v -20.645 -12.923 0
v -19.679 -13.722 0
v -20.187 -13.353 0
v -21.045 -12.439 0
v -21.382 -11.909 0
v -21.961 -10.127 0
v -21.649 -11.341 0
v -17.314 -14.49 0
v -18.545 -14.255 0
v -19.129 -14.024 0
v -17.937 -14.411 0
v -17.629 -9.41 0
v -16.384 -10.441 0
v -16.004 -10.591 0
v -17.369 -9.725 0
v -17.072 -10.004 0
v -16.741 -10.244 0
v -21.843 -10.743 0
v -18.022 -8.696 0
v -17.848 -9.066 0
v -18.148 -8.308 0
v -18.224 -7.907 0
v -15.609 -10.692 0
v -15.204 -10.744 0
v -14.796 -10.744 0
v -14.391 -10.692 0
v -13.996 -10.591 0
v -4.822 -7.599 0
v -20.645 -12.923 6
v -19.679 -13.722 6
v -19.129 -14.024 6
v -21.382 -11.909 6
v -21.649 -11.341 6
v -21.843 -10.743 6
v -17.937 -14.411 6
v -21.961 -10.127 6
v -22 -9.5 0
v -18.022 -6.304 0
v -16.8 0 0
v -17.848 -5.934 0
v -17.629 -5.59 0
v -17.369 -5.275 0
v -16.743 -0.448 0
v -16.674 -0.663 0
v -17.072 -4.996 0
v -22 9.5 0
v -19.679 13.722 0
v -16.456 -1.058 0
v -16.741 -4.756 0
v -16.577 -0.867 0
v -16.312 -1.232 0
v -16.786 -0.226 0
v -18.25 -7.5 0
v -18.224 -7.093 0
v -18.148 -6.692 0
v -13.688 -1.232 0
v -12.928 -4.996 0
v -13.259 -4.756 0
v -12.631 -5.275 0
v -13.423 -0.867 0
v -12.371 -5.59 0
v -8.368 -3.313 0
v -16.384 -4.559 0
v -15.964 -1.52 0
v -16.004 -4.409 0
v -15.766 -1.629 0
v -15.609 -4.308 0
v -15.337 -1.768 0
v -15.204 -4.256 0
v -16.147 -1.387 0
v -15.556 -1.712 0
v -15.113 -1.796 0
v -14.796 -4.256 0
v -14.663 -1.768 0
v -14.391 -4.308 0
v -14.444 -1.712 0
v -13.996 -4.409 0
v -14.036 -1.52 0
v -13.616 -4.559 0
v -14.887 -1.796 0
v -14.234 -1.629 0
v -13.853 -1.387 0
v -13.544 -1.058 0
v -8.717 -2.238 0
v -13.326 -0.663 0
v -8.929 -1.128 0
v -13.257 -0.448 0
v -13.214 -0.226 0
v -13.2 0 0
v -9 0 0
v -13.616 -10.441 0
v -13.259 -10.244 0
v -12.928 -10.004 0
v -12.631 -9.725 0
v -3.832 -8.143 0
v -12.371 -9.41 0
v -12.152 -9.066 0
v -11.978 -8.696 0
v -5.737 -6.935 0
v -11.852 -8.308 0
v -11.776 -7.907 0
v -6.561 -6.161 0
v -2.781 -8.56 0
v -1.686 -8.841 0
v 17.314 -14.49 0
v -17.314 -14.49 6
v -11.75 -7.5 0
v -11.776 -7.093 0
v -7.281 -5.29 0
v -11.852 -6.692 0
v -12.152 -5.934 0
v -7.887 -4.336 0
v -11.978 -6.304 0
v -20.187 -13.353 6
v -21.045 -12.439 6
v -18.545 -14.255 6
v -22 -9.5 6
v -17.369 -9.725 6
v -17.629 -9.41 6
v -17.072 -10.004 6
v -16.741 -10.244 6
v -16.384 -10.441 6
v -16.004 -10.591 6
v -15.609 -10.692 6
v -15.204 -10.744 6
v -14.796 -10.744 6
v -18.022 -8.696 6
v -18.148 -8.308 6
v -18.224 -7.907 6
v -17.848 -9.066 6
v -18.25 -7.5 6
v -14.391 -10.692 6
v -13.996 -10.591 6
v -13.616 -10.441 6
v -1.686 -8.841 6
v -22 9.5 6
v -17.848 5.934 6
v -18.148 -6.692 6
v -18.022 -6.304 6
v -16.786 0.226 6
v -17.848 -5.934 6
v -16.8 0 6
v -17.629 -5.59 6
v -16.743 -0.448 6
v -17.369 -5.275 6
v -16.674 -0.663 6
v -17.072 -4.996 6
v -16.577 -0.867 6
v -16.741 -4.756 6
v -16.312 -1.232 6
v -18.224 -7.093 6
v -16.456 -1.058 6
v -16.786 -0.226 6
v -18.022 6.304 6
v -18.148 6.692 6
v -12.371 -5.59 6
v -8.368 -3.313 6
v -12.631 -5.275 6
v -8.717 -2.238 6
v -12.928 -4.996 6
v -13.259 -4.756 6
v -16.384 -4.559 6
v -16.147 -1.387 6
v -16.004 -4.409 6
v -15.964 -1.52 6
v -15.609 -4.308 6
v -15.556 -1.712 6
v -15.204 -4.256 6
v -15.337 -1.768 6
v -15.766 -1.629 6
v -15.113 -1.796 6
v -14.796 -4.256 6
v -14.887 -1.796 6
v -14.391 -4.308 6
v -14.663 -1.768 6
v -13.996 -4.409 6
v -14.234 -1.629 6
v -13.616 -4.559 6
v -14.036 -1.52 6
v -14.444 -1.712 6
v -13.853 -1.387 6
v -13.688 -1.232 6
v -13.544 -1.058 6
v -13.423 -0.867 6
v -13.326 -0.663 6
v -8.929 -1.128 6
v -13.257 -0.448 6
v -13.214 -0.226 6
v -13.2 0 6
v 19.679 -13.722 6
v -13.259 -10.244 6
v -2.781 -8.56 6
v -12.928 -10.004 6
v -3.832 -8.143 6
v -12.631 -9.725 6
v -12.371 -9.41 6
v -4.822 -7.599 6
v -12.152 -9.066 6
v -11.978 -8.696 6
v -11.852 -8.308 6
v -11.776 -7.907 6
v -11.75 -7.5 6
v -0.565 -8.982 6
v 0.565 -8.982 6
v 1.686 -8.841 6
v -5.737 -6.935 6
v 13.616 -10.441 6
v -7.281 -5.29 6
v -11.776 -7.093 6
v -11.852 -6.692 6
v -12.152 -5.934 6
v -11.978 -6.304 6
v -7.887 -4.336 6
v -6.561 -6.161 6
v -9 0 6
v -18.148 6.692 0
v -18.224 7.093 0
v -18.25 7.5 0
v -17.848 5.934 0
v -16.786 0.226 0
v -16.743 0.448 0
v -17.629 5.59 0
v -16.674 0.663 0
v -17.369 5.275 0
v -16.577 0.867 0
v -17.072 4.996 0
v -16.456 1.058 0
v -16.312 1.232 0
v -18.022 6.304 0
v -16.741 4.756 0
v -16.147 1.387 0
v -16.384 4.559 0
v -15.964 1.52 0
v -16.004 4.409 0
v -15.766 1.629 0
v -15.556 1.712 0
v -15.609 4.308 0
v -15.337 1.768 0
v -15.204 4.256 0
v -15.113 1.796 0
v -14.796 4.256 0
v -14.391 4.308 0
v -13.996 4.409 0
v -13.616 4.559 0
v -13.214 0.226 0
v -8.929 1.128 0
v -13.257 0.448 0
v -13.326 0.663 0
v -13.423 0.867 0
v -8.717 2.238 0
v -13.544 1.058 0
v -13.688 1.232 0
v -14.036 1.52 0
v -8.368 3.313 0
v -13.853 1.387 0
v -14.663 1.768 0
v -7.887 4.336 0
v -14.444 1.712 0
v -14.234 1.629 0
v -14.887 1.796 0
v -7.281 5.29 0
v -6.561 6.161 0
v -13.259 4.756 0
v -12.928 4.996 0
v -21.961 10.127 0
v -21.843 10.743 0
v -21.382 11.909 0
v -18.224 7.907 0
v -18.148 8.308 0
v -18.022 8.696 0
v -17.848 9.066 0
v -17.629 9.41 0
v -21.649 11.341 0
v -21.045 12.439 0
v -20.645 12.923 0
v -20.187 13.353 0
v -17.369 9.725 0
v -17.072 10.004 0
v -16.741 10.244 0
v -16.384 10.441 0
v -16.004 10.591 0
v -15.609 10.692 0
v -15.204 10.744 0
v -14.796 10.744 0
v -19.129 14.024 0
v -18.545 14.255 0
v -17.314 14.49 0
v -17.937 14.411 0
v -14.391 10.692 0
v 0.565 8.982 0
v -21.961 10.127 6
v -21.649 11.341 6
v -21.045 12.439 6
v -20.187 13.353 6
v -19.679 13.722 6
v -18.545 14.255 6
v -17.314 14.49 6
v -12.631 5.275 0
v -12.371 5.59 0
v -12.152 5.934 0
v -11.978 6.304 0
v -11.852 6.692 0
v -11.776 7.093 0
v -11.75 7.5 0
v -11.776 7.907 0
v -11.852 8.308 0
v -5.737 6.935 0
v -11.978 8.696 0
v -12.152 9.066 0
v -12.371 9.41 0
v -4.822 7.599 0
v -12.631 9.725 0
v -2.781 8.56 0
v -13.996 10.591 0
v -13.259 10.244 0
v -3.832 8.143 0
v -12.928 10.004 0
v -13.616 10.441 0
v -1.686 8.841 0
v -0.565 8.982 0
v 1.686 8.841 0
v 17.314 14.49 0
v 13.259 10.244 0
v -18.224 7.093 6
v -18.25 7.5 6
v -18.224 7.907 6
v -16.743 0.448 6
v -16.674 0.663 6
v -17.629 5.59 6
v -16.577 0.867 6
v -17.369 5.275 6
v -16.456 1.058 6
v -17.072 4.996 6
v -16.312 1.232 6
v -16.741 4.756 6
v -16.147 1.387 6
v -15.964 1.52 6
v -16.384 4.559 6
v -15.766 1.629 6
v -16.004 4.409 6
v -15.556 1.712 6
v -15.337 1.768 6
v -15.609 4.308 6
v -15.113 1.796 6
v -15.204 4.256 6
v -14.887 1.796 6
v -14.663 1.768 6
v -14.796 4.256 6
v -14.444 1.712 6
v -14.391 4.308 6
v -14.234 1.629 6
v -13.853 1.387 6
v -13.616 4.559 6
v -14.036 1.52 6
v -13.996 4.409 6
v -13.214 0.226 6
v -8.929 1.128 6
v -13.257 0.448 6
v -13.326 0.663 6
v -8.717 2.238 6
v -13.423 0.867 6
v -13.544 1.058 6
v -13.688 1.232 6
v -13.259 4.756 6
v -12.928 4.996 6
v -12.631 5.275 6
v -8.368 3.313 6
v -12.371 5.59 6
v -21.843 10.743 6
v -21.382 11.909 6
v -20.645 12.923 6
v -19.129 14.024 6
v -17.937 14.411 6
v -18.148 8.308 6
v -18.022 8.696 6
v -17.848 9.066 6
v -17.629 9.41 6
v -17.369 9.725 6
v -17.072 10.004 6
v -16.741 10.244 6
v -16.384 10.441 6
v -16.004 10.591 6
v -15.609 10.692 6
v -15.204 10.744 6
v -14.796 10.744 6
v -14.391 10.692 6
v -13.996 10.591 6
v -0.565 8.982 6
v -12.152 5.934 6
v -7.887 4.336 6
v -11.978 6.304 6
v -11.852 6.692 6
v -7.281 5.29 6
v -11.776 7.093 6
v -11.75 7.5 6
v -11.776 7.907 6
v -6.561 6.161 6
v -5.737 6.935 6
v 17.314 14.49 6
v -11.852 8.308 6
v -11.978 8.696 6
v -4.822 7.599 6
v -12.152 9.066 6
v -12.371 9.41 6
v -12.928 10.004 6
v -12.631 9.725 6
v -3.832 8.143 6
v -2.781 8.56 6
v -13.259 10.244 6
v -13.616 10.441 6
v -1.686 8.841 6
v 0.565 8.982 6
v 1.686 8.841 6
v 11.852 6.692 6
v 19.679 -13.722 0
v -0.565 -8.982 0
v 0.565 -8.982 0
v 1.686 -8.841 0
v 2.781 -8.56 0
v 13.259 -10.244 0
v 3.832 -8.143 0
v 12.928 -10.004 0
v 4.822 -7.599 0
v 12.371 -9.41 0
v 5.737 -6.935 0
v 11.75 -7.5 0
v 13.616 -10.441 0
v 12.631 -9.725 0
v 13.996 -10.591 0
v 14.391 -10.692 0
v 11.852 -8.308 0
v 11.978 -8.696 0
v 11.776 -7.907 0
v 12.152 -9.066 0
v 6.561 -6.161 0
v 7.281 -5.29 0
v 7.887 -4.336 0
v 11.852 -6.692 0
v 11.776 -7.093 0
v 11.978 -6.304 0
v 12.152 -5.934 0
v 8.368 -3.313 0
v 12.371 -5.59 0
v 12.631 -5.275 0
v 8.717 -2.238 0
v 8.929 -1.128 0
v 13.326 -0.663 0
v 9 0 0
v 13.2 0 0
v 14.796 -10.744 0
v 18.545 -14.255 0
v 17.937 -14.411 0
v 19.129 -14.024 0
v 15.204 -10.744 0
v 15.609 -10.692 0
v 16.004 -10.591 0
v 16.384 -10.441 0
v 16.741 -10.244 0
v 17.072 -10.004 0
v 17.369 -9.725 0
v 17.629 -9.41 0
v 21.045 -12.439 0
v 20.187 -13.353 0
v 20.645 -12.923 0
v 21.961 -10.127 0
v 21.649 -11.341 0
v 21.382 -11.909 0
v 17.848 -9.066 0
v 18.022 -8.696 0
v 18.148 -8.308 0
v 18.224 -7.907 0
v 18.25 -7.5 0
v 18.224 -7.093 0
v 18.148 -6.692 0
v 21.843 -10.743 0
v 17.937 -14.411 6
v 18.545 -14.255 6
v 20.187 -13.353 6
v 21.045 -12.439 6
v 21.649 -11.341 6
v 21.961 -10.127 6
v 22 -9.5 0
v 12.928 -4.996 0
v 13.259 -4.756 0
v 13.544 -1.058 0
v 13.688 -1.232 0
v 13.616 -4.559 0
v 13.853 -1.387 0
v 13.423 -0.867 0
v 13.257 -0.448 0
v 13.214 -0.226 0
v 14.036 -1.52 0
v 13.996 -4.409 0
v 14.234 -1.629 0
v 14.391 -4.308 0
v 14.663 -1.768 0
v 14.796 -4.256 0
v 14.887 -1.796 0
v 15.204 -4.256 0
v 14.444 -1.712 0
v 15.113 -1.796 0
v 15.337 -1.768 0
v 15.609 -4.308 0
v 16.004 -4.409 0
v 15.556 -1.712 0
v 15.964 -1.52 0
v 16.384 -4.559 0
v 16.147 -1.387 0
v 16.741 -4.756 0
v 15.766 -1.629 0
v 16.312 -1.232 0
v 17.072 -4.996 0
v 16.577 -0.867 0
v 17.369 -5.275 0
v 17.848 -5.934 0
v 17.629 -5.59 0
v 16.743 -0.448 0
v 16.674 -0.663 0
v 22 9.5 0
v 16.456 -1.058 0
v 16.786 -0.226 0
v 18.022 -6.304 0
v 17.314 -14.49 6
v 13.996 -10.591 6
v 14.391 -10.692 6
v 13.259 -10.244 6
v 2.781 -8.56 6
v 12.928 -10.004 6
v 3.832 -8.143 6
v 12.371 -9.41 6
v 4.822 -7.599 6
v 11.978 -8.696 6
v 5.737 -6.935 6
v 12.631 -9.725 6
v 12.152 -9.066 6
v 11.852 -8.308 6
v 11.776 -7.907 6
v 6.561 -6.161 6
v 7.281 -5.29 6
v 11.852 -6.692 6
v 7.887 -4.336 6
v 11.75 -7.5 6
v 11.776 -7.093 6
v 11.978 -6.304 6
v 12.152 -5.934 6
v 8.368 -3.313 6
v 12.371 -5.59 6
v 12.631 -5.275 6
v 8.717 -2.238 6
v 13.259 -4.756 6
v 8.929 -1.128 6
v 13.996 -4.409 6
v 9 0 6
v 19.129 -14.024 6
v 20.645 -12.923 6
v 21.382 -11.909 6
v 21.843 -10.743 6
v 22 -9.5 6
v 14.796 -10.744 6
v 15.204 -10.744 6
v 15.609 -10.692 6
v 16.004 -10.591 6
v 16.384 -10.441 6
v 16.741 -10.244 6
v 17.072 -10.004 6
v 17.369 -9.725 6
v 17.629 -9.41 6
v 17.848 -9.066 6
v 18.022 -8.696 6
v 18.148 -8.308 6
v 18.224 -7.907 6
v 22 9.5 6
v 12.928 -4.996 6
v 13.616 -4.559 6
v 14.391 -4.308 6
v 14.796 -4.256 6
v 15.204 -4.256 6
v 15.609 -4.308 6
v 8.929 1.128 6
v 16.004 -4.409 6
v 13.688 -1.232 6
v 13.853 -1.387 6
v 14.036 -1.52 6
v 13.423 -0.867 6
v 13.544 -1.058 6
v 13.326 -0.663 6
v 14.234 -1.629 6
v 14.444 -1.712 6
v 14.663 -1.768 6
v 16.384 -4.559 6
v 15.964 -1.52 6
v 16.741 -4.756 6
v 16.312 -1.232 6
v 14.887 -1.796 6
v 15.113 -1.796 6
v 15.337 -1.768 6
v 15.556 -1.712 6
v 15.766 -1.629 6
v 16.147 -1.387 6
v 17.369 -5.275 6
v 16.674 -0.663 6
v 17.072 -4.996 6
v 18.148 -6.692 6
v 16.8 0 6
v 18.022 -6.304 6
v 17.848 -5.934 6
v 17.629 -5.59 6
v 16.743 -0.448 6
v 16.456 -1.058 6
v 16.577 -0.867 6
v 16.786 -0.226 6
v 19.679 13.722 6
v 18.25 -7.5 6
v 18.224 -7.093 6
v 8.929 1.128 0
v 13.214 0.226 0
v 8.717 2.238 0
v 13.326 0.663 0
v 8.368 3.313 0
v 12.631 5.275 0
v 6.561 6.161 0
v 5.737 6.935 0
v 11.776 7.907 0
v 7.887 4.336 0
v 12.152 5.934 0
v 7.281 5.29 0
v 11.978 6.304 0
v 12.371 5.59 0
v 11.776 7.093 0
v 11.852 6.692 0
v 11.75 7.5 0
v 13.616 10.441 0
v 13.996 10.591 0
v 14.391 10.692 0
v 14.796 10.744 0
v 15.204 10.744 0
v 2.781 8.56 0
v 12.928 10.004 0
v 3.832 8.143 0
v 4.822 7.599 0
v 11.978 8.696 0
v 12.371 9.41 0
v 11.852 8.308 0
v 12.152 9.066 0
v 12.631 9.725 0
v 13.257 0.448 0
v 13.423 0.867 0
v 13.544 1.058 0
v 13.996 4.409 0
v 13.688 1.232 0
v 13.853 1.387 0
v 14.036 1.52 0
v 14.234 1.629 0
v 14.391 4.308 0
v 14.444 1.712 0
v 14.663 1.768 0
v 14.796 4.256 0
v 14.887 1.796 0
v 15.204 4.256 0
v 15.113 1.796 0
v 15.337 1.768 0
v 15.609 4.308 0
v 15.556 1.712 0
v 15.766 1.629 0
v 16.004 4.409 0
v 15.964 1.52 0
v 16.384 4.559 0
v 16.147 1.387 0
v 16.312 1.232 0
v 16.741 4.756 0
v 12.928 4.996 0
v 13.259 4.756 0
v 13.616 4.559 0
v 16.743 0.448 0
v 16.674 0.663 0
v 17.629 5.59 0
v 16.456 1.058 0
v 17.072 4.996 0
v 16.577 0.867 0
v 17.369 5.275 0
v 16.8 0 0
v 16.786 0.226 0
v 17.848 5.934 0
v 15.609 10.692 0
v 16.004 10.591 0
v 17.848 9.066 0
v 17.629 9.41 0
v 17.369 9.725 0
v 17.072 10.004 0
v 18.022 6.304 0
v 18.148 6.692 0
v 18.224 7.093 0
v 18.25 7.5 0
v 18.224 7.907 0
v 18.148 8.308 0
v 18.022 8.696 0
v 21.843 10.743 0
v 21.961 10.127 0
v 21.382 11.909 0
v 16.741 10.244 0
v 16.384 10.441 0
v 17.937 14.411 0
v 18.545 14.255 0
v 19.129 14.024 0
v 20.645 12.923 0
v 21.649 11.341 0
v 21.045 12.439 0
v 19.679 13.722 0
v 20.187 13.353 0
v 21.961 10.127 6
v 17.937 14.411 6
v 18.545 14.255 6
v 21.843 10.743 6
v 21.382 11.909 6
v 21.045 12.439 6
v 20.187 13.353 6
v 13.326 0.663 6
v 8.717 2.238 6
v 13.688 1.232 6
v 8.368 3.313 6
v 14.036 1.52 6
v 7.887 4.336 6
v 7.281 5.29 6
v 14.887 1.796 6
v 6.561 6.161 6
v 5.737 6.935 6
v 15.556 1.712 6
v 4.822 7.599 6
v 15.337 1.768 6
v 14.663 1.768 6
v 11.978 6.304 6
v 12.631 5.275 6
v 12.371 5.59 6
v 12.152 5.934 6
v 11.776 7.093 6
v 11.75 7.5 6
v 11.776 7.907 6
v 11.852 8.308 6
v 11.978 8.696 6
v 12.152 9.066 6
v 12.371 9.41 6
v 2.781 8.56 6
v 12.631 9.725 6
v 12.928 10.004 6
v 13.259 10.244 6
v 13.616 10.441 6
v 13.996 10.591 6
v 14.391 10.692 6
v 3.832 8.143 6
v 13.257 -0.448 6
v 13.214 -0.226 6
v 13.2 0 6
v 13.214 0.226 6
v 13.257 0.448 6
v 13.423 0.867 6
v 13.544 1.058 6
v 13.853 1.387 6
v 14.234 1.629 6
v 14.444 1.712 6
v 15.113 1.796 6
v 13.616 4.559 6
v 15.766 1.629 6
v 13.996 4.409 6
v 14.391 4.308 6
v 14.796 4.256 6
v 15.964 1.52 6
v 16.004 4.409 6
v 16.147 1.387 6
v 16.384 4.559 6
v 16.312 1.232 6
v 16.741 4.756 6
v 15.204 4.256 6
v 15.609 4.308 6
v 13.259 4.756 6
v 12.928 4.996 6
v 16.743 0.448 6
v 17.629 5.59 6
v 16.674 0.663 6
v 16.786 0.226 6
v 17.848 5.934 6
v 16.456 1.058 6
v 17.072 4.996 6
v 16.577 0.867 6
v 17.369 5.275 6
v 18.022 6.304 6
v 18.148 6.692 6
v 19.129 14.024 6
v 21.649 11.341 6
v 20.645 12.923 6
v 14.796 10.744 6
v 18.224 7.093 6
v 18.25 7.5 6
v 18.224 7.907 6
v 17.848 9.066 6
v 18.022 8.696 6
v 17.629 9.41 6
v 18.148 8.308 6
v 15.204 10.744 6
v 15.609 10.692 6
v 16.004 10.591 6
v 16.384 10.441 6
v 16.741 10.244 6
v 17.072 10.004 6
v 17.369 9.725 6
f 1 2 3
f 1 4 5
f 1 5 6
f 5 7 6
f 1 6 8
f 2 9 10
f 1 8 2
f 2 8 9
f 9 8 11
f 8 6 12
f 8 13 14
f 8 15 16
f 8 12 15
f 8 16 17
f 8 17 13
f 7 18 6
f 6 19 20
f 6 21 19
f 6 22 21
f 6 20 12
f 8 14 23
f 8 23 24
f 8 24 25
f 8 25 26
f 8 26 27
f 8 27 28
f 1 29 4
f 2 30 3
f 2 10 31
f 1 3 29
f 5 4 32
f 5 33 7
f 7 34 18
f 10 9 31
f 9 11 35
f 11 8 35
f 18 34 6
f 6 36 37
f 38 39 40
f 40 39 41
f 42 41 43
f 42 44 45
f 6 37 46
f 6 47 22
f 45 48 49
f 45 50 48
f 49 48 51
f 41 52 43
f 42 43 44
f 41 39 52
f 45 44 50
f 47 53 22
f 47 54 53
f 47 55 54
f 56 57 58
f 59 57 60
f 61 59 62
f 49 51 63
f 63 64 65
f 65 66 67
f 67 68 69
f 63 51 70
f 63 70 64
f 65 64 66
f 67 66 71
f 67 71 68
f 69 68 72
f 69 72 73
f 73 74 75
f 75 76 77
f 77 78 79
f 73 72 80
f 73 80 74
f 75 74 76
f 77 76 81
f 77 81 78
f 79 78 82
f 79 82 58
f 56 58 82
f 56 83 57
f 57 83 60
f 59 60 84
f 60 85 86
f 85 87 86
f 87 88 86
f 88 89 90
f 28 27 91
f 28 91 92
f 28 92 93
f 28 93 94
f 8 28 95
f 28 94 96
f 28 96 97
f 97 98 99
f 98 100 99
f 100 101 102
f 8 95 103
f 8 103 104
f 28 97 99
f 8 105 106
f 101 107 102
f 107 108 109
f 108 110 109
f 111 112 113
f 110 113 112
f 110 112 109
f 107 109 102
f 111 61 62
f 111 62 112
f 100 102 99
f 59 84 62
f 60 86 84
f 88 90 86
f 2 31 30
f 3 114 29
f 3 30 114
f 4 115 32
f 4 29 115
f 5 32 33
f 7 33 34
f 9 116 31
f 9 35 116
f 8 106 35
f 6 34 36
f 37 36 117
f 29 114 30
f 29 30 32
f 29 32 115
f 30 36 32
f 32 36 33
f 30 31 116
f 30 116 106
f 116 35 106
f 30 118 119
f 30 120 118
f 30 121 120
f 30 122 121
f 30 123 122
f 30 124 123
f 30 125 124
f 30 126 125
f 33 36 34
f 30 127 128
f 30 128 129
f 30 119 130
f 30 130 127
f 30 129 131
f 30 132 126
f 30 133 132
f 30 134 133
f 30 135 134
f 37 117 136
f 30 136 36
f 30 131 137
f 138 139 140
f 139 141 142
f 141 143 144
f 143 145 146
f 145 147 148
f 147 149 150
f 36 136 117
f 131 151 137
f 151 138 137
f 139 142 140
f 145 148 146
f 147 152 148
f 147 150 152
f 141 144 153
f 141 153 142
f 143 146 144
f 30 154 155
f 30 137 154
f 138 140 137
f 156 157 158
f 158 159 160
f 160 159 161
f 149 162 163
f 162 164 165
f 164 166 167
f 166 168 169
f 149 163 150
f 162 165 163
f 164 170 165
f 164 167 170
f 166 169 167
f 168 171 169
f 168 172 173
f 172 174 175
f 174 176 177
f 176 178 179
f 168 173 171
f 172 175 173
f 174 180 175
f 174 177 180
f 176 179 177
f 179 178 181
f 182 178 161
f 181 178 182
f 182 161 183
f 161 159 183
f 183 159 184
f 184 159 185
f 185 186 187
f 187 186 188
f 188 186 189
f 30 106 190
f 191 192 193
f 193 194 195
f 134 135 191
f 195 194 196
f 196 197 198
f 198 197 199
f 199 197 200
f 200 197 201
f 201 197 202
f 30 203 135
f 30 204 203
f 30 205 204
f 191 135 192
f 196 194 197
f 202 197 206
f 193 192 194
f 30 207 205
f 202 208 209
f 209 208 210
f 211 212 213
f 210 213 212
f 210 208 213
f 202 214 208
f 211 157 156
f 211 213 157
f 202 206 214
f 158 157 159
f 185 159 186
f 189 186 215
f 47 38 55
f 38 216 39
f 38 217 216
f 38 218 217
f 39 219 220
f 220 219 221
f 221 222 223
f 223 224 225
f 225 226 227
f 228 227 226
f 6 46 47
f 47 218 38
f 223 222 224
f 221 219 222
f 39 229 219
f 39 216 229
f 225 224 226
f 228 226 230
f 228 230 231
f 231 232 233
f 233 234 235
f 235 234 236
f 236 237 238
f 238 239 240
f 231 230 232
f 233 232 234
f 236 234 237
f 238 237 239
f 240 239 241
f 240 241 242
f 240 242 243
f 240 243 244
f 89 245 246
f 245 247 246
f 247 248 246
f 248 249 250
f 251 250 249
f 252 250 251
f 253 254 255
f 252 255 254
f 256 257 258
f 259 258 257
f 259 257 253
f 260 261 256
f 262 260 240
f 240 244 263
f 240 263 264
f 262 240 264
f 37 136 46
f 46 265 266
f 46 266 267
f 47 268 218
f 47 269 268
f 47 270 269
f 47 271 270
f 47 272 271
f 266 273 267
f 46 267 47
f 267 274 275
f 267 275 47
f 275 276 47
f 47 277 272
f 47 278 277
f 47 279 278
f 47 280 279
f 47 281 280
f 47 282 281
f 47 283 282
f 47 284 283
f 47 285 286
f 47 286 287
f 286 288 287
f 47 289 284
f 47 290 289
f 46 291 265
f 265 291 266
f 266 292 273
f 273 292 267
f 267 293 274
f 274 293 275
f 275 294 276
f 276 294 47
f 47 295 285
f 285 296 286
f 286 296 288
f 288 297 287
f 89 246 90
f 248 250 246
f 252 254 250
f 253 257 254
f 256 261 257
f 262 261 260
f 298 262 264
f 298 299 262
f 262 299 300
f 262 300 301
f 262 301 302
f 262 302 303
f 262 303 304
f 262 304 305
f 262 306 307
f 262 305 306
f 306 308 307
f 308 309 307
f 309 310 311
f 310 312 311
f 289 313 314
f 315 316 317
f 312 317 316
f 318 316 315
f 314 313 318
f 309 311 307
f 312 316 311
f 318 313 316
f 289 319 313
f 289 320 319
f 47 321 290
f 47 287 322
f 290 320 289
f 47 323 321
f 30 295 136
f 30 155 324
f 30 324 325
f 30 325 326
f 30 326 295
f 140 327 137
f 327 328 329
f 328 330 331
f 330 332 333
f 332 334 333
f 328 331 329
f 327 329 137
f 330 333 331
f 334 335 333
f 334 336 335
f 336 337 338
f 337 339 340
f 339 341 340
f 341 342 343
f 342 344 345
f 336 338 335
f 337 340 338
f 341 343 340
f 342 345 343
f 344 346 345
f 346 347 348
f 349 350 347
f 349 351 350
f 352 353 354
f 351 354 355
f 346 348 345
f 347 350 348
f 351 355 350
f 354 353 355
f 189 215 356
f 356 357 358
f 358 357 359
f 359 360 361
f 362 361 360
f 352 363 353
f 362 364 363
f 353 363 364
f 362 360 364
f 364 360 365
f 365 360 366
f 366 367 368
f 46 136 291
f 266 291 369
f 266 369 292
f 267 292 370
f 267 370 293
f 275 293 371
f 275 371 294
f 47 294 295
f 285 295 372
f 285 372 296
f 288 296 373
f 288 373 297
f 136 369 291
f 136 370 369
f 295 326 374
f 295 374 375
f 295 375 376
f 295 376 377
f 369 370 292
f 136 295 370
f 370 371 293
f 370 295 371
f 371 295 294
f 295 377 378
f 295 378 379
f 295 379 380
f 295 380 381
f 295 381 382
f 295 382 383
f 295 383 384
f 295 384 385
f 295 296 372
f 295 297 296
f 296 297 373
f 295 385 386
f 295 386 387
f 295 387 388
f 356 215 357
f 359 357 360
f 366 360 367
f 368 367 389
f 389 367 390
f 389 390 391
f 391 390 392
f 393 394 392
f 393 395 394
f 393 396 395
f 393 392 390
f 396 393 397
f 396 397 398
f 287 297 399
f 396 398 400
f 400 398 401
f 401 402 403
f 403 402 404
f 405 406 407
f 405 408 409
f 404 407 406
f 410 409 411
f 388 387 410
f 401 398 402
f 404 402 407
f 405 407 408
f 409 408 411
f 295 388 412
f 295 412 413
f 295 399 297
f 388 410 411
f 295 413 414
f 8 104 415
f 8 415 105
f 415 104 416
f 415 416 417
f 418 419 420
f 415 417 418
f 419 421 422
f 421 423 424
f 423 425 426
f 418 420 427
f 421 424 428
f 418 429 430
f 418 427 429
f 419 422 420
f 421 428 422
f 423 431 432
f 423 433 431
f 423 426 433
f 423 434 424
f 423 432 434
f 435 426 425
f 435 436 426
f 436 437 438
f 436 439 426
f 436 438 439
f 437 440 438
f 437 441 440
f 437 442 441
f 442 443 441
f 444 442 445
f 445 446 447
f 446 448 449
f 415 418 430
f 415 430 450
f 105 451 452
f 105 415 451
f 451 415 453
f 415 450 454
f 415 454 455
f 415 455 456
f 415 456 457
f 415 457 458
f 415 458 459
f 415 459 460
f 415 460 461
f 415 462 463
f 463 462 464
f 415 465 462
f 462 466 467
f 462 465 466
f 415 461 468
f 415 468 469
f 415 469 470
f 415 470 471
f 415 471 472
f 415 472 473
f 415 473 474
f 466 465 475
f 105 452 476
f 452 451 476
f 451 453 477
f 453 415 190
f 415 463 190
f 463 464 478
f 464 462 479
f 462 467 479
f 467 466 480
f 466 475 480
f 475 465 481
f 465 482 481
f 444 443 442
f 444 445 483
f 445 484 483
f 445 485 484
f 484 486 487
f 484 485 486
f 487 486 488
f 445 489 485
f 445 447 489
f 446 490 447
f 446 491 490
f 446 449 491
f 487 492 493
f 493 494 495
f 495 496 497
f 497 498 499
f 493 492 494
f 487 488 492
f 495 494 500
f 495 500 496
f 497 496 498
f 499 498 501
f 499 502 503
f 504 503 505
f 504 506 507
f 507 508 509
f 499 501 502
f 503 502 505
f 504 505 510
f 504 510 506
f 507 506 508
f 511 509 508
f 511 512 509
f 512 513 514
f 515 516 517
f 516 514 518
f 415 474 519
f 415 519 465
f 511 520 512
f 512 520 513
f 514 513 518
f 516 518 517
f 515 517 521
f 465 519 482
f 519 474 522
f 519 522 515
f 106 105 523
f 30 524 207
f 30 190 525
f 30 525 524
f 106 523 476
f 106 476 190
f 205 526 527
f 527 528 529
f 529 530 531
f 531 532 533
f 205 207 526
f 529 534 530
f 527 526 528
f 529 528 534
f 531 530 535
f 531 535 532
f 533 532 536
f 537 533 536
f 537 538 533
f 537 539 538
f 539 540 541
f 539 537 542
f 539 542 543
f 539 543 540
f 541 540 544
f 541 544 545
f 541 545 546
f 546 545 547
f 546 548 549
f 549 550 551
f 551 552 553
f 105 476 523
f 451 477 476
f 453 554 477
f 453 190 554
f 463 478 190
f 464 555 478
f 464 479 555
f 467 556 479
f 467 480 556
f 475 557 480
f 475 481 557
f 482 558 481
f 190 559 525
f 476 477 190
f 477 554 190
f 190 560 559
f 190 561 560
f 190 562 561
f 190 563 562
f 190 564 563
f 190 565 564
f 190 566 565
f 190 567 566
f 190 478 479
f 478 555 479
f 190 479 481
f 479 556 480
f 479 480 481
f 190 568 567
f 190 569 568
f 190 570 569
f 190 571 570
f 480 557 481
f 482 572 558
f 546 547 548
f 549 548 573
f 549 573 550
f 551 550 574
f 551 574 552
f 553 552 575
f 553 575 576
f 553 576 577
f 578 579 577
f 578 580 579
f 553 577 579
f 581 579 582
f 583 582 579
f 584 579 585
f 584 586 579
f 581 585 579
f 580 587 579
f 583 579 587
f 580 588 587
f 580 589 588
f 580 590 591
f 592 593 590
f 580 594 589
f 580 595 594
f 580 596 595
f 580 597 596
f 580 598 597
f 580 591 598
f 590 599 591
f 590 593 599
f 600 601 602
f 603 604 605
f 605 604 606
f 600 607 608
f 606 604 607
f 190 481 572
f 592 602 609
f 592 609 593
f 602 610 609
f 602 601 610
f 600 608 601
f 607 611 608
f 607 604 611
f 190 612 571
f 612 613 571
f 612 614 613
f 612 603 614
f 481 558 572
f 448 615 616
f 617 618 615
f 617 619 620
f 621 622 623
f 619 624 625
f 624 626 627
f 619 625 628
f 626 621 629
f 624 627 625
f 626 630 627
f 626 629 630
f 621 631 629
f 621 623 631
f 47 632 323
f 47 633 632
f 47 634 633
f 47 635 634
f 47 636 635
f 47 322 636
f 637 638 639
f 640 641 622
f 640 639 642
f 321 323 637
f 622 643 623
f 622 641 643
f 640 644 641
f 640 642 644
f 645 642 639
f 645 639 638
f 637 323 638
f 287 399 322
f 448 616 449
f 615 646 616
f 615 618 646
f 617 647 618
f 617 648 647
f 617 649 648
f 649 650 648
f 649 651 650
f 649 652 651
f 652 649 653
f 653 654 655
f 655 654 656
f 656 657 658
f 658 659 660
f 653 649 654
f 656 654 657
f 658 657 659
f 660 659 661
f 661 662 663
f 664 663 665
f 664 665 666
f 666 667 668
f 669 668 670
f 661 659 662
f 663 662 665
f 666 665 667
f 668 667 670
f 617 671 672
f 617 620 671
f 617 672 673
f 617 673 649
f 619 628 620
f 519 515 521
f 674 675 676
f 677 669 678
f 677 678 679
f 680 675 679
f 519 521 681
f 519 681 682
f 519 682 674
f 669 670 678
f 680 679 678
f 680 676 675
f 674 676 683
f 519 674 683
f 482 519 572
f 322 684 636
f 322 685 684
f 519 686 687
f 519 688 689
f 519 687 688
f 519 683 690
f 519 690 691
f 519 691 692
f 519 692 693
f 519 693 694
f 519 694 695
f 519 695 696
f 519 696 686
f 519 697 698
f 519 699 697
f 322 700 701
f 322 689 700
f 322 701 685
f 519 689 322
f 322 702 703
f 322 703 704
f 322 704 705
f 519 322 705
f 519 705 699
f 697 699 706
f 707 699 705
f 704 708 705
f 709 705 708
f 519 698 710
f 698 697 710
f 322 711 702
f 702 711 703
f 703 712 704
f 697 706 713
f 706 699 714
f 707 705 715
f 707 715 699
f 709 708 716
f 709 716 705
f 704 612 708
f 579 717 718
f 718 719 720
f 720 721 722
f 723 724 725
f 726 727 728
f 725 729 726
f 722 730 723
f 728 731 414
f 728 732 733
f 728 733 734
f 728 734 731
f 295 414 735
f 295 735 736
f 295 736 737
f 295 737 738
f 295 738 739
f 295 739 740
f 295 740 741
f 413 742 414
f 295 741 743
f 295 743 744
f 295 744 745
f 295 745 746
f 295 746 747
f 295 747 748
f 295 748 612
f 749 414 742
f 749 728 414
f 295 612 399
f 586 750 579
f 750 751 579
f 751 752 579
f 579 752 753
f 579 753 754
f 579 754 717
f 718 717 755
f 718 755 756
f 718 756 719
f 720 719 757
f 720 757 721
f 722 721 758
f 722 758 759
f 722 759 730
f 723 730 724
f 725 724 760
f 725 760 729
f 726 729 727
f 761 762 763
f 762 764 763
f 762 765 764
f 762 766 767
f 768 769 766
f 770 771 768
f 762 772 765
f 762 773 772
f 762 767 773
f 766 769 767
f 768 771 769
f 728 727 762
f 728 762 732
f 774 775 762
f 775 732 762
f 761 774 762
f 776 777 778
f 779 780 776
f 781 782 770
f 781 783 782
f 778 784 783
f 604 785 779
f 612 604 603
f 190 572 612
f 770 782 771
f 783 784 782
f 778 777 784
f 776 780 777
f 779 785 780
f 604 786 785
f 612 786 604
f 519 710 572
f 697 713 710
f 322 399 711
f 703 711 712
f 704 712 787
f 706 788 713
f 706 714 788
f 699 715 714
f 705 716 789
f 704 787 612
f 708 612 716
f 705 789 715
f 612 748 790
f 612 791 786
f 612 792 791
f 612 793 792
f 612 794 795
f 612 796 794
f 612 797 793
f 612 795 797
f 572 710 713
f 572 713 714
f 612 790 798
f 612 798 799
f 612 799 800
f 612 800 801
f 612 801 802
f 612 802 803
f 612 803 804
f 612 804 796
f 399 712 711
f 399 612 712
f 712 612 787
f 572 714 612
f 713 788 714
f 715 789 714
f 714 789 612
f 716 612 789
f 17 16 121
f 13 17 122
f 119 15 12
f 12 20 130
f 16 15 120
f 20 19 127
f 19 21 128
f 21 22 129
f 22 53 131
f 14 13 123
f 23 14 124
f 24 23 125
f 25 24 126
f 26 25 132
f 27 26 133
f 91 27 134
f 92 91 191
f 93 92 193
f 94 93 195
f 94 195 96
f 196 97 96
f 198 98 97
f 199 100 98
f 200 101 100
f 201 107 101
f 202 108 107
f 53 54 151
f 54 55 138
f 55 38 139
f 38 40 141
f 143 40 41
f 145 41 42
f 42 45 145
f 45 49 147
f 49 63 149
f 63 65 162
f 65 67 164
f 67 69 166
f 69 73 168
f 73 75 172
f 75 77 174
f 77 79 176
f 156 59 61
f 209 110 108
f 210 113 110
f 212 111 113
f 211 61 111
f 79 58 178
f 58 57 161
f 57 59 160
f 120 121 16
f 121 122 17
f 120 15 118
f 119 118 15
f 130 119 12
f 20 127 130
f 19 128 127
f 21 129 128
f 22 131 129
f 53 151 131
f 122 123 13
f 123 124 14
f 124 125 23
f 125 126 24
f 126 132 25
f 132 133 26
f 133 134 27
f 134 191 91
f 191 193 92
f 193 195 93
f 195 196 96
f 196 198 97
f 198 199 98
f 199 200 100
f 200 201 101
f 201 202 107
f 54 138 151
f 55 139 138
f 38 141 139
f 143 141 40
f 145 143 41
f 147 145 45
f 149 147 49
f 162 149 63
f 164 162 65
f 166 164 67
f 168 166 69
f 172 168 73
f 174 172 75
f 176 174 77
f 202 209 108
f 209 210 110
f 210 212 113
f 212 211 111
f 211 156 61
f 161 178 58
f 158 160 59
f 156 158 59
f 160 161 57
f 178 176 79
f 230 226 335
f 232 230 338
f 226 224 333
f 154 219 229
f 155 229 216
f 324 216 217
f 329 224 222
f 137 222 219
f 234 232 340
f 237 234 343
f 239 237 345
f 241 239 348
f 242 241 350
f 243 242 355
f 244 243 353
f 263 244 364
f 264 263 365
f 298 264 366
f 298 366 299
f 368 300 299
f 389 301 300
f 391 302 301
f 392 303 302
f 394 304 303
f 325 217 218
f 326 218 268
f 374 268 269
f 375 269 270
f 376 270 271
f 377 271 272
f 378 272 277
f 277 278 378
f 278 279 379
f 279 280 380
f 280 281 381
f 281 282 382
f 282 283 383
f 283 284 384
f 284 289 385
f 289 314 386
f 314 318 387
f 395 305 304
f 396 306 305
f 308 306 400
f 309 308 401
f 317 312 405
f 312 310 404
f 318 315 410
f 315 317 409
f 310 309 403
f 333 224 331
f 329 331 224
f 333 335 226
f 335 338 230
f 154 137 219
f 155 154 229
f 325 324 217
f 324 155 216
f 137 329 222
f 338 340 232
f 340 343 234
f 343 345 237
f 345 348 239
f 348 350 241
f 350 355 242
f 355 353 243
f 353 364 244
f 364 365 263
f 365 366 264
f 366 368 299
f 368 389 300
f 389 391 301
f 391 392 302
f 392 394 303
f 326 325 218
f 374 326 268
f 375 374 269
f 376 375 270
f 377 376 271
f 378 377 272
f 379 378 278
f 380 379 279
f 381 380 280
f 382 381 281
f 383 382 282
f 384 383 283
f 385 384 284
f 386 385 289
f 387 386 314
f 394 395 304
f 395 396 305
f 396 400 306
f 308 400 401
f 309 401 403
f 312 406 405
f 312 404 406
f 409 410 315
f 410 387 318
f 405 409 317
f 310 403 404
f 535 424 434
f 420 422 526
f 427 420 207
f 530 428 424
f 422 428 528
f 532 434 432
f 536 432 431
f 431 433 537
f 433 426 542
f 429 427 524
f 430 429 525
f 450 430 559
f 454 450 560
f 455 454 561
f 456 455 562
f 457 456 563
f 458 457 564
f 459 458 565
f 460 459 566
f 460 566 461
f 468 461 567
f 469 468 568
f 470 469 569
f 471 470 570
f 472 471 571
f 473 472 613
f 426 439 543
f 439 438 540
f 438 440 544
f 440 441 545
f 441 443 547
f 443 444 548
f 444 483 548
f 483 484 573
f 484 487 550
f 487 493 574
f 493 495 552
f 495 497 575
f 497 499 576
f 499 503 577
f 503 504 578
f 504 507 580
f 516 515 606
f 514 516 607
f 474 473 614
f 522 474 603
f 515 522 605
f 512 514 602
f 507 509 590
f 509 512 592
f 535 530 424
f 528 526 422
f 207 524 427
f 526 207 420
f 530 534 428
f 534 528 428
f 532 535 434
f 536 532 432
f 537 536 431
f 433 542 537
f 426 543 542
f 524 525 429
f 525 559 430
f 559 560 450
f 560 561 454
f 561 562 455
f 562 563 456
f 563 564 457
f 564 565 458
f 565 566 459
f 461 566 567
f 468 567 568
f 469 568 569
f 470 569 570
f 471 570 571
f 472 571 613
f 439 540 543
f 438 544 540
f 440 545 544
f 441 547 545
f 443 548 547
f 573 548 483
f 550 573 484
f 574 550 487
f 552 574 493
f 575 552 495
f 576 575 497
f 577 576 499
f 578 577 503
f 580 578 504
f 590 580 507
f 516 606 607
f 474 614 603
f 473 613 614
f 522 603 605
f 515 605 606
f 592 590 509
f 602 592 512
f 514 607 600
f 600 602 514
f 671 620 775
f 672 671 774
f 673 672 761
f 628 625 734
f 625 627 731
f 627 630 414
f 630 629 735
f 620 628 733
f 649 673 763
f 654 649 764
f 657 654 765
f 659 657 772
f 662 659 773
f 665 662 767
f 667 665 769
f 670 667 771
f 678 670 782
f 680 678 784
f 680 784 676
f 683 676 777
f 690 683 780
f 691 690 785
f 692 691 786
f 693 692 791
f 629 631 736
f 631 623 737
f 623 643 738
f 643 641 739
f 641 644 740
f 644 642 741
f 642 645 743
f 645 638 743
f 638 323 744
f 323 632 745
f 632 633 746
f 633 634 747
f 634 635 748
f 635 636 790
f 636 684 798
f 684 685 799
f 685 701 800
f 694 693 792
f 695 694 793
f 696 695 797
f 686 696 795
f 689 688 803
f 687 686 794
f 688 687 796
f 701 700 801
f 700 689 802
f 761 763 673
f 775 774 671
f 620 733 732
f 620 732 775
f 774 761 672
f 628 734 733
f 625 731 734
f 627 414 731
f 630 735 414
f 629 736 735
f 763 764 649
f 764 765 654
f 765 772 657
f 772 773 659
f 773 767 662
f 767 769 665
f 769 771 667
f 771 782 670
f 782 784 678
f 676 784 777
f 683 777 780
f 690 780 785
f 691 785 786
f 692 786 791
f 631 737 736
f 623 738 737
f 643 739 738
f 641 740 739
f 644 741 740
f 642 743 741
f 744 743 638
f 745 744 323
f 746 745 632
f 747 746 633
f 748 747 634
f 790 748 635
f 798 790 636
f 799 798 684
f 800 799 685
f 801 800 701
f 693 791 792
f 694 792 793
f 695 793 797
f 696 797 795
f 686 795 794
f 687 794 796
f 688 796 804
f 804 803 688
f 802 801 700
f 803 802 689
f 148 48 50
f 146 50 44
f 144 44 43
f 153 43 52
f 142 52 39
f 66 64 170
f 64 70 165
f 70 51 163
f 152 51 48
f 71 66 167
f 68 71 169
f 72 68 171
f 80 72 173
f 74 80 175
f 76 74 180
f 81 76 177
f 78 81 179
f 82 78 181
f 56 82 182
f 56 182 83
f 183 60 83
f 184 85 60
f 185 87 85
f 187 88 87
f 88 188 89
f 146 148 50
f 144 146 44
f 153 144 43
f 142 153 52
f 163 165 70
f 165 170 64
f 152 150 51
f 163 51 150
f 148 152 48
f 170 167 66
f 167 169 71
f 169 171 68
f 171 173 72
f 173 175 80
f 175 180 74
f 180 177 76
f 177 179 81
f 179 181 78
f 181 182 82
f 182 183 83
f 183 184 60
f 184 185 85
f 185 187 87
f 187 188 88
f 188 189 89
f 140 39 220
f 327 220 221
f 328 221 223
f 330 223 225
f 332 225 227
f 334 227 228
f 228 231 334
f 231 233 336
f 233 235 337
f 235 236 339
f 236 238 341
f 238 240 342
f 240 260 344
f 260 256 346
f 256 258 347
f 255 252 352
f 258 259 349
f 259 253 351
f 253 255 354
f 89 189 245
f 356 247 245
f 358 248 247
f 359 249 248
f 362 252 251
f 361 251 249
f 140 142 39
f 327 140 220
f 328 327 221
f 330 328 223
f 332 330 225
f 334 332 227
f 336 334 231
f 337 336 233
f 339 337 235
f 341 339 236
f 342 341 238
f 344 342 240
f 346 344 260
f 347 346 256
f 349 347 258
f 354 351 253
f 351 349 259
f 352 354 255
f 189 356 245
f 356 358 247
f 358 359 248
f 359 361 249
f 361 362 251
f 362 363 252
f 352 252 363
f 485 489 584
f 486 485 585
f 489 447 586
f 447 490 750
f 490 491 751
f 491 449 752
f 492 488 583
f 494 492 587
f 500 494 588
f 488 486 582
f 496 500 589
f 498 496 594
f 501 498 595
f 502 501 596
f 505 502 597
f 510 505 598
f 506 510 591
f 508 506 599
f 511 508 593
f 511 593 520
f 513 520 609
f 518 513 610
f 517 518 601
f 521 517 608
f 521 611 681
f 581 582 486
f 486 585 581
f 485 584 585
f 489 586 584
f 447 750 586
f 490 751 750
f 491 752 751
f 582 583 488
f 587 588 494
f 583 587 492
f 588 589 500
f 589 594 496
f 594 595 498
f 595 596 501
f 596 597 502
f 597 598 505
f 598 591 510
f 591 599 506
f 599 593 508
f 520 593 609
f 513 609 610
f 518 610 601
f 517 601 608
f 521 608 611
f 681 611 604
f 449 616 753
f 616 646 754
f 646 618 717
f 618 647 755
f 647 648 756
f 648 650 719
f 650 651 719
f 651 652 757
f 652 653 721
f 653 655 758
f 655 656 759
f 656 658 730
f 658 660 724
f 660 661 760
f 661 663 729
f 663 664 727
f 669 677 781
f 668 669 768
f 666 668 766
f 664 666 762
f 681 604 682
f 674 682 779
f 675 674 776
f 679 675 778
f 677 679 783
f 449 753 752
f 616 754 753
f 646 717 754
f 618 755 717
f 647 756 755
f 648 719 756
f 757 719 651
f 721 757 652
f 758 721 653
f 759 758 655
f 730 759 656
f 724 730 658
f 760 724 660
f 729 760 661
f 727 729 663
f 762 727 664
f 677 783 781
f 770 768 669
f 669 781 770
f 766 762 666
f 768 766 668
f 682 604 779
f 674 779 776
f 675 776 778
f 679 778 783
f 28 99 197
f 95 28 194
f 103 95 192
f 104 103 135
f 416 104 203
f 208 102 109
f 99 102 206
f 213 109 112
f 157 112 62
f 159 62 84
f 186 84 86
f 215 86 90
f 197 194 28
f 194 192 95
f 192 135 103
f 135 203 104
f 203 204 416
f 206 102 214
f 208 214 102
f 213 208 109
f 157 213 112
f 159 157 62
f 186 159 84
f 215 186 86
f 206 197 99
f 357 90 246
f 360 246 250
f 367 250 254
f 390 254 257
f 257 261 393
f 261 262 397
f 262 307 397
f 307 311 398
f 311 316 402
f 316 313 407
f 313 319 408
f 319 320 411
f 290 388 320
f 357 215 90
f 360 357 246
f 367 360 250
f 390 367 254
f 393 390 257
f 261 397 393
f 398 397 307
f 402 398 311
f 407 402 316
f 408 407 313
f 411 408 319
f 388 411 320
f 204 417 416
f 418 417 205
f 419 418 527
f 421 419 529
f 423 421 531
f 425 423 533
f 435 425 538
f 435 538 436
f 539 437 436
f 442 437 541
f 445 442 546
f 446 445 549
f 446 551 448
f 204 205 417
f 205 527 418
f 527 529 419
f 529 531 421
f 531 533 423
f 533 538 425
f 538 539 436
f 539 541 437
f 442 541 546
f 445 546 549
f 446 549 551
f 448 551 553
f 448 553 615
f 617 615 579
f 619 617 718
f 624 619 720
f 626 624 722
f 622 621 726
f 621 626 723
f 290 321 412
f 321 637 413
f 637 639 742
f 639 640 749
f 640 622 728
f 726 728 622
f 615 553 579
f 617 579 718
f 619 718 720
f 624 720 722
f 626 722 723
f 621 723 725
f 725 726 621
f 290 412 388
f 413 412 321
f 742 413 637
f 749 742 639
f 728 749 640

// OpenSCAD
$fn = 50;

difference() {
	union() {
		hull() {
			translate(v = [-17.0, 9.5, 0]) {
				cylinder(h = 6, r = 5);
			}
			translate(v = [17.0, 9.5, 0]) {
				cylinder(h = 6, r = 5);
			}
			translate(v = [-17.0, -9.5, 0]) {
				cylinder(h = 6, r = 5);
			}
			translate(v = [17.0, -9.5, 0]) {
				cylinder(h = 6, r = 5);
			}
		}
	}
	union() {
		translate(v = [-15.0, -7.5, 0]) {
			cylinder(h = 6, r = 3.25);
		}
		translate(v = [-15.0, 7.5, 0]) {
			cylinder(h = 6, r = 3.25);
		}
		translate(v = [15.0, -7.5, 0]) {
			cylinder(h = 6, r = 3.25);
		}
		translate(v = [15.0, 7.5, 0]) {
			cylinder(h = 6, r = 3.25);
		}
		translate(v = [-15.0, 0.0, 0]) {
			cylinder(h = 6, r = 1.8);
		}
		translate(v = [15.0, 0.0, 0]) {
			cylinder(h = 6, r = 1.8);
		}
		cylinder(h = 6, r = 9.0);
	}
}
